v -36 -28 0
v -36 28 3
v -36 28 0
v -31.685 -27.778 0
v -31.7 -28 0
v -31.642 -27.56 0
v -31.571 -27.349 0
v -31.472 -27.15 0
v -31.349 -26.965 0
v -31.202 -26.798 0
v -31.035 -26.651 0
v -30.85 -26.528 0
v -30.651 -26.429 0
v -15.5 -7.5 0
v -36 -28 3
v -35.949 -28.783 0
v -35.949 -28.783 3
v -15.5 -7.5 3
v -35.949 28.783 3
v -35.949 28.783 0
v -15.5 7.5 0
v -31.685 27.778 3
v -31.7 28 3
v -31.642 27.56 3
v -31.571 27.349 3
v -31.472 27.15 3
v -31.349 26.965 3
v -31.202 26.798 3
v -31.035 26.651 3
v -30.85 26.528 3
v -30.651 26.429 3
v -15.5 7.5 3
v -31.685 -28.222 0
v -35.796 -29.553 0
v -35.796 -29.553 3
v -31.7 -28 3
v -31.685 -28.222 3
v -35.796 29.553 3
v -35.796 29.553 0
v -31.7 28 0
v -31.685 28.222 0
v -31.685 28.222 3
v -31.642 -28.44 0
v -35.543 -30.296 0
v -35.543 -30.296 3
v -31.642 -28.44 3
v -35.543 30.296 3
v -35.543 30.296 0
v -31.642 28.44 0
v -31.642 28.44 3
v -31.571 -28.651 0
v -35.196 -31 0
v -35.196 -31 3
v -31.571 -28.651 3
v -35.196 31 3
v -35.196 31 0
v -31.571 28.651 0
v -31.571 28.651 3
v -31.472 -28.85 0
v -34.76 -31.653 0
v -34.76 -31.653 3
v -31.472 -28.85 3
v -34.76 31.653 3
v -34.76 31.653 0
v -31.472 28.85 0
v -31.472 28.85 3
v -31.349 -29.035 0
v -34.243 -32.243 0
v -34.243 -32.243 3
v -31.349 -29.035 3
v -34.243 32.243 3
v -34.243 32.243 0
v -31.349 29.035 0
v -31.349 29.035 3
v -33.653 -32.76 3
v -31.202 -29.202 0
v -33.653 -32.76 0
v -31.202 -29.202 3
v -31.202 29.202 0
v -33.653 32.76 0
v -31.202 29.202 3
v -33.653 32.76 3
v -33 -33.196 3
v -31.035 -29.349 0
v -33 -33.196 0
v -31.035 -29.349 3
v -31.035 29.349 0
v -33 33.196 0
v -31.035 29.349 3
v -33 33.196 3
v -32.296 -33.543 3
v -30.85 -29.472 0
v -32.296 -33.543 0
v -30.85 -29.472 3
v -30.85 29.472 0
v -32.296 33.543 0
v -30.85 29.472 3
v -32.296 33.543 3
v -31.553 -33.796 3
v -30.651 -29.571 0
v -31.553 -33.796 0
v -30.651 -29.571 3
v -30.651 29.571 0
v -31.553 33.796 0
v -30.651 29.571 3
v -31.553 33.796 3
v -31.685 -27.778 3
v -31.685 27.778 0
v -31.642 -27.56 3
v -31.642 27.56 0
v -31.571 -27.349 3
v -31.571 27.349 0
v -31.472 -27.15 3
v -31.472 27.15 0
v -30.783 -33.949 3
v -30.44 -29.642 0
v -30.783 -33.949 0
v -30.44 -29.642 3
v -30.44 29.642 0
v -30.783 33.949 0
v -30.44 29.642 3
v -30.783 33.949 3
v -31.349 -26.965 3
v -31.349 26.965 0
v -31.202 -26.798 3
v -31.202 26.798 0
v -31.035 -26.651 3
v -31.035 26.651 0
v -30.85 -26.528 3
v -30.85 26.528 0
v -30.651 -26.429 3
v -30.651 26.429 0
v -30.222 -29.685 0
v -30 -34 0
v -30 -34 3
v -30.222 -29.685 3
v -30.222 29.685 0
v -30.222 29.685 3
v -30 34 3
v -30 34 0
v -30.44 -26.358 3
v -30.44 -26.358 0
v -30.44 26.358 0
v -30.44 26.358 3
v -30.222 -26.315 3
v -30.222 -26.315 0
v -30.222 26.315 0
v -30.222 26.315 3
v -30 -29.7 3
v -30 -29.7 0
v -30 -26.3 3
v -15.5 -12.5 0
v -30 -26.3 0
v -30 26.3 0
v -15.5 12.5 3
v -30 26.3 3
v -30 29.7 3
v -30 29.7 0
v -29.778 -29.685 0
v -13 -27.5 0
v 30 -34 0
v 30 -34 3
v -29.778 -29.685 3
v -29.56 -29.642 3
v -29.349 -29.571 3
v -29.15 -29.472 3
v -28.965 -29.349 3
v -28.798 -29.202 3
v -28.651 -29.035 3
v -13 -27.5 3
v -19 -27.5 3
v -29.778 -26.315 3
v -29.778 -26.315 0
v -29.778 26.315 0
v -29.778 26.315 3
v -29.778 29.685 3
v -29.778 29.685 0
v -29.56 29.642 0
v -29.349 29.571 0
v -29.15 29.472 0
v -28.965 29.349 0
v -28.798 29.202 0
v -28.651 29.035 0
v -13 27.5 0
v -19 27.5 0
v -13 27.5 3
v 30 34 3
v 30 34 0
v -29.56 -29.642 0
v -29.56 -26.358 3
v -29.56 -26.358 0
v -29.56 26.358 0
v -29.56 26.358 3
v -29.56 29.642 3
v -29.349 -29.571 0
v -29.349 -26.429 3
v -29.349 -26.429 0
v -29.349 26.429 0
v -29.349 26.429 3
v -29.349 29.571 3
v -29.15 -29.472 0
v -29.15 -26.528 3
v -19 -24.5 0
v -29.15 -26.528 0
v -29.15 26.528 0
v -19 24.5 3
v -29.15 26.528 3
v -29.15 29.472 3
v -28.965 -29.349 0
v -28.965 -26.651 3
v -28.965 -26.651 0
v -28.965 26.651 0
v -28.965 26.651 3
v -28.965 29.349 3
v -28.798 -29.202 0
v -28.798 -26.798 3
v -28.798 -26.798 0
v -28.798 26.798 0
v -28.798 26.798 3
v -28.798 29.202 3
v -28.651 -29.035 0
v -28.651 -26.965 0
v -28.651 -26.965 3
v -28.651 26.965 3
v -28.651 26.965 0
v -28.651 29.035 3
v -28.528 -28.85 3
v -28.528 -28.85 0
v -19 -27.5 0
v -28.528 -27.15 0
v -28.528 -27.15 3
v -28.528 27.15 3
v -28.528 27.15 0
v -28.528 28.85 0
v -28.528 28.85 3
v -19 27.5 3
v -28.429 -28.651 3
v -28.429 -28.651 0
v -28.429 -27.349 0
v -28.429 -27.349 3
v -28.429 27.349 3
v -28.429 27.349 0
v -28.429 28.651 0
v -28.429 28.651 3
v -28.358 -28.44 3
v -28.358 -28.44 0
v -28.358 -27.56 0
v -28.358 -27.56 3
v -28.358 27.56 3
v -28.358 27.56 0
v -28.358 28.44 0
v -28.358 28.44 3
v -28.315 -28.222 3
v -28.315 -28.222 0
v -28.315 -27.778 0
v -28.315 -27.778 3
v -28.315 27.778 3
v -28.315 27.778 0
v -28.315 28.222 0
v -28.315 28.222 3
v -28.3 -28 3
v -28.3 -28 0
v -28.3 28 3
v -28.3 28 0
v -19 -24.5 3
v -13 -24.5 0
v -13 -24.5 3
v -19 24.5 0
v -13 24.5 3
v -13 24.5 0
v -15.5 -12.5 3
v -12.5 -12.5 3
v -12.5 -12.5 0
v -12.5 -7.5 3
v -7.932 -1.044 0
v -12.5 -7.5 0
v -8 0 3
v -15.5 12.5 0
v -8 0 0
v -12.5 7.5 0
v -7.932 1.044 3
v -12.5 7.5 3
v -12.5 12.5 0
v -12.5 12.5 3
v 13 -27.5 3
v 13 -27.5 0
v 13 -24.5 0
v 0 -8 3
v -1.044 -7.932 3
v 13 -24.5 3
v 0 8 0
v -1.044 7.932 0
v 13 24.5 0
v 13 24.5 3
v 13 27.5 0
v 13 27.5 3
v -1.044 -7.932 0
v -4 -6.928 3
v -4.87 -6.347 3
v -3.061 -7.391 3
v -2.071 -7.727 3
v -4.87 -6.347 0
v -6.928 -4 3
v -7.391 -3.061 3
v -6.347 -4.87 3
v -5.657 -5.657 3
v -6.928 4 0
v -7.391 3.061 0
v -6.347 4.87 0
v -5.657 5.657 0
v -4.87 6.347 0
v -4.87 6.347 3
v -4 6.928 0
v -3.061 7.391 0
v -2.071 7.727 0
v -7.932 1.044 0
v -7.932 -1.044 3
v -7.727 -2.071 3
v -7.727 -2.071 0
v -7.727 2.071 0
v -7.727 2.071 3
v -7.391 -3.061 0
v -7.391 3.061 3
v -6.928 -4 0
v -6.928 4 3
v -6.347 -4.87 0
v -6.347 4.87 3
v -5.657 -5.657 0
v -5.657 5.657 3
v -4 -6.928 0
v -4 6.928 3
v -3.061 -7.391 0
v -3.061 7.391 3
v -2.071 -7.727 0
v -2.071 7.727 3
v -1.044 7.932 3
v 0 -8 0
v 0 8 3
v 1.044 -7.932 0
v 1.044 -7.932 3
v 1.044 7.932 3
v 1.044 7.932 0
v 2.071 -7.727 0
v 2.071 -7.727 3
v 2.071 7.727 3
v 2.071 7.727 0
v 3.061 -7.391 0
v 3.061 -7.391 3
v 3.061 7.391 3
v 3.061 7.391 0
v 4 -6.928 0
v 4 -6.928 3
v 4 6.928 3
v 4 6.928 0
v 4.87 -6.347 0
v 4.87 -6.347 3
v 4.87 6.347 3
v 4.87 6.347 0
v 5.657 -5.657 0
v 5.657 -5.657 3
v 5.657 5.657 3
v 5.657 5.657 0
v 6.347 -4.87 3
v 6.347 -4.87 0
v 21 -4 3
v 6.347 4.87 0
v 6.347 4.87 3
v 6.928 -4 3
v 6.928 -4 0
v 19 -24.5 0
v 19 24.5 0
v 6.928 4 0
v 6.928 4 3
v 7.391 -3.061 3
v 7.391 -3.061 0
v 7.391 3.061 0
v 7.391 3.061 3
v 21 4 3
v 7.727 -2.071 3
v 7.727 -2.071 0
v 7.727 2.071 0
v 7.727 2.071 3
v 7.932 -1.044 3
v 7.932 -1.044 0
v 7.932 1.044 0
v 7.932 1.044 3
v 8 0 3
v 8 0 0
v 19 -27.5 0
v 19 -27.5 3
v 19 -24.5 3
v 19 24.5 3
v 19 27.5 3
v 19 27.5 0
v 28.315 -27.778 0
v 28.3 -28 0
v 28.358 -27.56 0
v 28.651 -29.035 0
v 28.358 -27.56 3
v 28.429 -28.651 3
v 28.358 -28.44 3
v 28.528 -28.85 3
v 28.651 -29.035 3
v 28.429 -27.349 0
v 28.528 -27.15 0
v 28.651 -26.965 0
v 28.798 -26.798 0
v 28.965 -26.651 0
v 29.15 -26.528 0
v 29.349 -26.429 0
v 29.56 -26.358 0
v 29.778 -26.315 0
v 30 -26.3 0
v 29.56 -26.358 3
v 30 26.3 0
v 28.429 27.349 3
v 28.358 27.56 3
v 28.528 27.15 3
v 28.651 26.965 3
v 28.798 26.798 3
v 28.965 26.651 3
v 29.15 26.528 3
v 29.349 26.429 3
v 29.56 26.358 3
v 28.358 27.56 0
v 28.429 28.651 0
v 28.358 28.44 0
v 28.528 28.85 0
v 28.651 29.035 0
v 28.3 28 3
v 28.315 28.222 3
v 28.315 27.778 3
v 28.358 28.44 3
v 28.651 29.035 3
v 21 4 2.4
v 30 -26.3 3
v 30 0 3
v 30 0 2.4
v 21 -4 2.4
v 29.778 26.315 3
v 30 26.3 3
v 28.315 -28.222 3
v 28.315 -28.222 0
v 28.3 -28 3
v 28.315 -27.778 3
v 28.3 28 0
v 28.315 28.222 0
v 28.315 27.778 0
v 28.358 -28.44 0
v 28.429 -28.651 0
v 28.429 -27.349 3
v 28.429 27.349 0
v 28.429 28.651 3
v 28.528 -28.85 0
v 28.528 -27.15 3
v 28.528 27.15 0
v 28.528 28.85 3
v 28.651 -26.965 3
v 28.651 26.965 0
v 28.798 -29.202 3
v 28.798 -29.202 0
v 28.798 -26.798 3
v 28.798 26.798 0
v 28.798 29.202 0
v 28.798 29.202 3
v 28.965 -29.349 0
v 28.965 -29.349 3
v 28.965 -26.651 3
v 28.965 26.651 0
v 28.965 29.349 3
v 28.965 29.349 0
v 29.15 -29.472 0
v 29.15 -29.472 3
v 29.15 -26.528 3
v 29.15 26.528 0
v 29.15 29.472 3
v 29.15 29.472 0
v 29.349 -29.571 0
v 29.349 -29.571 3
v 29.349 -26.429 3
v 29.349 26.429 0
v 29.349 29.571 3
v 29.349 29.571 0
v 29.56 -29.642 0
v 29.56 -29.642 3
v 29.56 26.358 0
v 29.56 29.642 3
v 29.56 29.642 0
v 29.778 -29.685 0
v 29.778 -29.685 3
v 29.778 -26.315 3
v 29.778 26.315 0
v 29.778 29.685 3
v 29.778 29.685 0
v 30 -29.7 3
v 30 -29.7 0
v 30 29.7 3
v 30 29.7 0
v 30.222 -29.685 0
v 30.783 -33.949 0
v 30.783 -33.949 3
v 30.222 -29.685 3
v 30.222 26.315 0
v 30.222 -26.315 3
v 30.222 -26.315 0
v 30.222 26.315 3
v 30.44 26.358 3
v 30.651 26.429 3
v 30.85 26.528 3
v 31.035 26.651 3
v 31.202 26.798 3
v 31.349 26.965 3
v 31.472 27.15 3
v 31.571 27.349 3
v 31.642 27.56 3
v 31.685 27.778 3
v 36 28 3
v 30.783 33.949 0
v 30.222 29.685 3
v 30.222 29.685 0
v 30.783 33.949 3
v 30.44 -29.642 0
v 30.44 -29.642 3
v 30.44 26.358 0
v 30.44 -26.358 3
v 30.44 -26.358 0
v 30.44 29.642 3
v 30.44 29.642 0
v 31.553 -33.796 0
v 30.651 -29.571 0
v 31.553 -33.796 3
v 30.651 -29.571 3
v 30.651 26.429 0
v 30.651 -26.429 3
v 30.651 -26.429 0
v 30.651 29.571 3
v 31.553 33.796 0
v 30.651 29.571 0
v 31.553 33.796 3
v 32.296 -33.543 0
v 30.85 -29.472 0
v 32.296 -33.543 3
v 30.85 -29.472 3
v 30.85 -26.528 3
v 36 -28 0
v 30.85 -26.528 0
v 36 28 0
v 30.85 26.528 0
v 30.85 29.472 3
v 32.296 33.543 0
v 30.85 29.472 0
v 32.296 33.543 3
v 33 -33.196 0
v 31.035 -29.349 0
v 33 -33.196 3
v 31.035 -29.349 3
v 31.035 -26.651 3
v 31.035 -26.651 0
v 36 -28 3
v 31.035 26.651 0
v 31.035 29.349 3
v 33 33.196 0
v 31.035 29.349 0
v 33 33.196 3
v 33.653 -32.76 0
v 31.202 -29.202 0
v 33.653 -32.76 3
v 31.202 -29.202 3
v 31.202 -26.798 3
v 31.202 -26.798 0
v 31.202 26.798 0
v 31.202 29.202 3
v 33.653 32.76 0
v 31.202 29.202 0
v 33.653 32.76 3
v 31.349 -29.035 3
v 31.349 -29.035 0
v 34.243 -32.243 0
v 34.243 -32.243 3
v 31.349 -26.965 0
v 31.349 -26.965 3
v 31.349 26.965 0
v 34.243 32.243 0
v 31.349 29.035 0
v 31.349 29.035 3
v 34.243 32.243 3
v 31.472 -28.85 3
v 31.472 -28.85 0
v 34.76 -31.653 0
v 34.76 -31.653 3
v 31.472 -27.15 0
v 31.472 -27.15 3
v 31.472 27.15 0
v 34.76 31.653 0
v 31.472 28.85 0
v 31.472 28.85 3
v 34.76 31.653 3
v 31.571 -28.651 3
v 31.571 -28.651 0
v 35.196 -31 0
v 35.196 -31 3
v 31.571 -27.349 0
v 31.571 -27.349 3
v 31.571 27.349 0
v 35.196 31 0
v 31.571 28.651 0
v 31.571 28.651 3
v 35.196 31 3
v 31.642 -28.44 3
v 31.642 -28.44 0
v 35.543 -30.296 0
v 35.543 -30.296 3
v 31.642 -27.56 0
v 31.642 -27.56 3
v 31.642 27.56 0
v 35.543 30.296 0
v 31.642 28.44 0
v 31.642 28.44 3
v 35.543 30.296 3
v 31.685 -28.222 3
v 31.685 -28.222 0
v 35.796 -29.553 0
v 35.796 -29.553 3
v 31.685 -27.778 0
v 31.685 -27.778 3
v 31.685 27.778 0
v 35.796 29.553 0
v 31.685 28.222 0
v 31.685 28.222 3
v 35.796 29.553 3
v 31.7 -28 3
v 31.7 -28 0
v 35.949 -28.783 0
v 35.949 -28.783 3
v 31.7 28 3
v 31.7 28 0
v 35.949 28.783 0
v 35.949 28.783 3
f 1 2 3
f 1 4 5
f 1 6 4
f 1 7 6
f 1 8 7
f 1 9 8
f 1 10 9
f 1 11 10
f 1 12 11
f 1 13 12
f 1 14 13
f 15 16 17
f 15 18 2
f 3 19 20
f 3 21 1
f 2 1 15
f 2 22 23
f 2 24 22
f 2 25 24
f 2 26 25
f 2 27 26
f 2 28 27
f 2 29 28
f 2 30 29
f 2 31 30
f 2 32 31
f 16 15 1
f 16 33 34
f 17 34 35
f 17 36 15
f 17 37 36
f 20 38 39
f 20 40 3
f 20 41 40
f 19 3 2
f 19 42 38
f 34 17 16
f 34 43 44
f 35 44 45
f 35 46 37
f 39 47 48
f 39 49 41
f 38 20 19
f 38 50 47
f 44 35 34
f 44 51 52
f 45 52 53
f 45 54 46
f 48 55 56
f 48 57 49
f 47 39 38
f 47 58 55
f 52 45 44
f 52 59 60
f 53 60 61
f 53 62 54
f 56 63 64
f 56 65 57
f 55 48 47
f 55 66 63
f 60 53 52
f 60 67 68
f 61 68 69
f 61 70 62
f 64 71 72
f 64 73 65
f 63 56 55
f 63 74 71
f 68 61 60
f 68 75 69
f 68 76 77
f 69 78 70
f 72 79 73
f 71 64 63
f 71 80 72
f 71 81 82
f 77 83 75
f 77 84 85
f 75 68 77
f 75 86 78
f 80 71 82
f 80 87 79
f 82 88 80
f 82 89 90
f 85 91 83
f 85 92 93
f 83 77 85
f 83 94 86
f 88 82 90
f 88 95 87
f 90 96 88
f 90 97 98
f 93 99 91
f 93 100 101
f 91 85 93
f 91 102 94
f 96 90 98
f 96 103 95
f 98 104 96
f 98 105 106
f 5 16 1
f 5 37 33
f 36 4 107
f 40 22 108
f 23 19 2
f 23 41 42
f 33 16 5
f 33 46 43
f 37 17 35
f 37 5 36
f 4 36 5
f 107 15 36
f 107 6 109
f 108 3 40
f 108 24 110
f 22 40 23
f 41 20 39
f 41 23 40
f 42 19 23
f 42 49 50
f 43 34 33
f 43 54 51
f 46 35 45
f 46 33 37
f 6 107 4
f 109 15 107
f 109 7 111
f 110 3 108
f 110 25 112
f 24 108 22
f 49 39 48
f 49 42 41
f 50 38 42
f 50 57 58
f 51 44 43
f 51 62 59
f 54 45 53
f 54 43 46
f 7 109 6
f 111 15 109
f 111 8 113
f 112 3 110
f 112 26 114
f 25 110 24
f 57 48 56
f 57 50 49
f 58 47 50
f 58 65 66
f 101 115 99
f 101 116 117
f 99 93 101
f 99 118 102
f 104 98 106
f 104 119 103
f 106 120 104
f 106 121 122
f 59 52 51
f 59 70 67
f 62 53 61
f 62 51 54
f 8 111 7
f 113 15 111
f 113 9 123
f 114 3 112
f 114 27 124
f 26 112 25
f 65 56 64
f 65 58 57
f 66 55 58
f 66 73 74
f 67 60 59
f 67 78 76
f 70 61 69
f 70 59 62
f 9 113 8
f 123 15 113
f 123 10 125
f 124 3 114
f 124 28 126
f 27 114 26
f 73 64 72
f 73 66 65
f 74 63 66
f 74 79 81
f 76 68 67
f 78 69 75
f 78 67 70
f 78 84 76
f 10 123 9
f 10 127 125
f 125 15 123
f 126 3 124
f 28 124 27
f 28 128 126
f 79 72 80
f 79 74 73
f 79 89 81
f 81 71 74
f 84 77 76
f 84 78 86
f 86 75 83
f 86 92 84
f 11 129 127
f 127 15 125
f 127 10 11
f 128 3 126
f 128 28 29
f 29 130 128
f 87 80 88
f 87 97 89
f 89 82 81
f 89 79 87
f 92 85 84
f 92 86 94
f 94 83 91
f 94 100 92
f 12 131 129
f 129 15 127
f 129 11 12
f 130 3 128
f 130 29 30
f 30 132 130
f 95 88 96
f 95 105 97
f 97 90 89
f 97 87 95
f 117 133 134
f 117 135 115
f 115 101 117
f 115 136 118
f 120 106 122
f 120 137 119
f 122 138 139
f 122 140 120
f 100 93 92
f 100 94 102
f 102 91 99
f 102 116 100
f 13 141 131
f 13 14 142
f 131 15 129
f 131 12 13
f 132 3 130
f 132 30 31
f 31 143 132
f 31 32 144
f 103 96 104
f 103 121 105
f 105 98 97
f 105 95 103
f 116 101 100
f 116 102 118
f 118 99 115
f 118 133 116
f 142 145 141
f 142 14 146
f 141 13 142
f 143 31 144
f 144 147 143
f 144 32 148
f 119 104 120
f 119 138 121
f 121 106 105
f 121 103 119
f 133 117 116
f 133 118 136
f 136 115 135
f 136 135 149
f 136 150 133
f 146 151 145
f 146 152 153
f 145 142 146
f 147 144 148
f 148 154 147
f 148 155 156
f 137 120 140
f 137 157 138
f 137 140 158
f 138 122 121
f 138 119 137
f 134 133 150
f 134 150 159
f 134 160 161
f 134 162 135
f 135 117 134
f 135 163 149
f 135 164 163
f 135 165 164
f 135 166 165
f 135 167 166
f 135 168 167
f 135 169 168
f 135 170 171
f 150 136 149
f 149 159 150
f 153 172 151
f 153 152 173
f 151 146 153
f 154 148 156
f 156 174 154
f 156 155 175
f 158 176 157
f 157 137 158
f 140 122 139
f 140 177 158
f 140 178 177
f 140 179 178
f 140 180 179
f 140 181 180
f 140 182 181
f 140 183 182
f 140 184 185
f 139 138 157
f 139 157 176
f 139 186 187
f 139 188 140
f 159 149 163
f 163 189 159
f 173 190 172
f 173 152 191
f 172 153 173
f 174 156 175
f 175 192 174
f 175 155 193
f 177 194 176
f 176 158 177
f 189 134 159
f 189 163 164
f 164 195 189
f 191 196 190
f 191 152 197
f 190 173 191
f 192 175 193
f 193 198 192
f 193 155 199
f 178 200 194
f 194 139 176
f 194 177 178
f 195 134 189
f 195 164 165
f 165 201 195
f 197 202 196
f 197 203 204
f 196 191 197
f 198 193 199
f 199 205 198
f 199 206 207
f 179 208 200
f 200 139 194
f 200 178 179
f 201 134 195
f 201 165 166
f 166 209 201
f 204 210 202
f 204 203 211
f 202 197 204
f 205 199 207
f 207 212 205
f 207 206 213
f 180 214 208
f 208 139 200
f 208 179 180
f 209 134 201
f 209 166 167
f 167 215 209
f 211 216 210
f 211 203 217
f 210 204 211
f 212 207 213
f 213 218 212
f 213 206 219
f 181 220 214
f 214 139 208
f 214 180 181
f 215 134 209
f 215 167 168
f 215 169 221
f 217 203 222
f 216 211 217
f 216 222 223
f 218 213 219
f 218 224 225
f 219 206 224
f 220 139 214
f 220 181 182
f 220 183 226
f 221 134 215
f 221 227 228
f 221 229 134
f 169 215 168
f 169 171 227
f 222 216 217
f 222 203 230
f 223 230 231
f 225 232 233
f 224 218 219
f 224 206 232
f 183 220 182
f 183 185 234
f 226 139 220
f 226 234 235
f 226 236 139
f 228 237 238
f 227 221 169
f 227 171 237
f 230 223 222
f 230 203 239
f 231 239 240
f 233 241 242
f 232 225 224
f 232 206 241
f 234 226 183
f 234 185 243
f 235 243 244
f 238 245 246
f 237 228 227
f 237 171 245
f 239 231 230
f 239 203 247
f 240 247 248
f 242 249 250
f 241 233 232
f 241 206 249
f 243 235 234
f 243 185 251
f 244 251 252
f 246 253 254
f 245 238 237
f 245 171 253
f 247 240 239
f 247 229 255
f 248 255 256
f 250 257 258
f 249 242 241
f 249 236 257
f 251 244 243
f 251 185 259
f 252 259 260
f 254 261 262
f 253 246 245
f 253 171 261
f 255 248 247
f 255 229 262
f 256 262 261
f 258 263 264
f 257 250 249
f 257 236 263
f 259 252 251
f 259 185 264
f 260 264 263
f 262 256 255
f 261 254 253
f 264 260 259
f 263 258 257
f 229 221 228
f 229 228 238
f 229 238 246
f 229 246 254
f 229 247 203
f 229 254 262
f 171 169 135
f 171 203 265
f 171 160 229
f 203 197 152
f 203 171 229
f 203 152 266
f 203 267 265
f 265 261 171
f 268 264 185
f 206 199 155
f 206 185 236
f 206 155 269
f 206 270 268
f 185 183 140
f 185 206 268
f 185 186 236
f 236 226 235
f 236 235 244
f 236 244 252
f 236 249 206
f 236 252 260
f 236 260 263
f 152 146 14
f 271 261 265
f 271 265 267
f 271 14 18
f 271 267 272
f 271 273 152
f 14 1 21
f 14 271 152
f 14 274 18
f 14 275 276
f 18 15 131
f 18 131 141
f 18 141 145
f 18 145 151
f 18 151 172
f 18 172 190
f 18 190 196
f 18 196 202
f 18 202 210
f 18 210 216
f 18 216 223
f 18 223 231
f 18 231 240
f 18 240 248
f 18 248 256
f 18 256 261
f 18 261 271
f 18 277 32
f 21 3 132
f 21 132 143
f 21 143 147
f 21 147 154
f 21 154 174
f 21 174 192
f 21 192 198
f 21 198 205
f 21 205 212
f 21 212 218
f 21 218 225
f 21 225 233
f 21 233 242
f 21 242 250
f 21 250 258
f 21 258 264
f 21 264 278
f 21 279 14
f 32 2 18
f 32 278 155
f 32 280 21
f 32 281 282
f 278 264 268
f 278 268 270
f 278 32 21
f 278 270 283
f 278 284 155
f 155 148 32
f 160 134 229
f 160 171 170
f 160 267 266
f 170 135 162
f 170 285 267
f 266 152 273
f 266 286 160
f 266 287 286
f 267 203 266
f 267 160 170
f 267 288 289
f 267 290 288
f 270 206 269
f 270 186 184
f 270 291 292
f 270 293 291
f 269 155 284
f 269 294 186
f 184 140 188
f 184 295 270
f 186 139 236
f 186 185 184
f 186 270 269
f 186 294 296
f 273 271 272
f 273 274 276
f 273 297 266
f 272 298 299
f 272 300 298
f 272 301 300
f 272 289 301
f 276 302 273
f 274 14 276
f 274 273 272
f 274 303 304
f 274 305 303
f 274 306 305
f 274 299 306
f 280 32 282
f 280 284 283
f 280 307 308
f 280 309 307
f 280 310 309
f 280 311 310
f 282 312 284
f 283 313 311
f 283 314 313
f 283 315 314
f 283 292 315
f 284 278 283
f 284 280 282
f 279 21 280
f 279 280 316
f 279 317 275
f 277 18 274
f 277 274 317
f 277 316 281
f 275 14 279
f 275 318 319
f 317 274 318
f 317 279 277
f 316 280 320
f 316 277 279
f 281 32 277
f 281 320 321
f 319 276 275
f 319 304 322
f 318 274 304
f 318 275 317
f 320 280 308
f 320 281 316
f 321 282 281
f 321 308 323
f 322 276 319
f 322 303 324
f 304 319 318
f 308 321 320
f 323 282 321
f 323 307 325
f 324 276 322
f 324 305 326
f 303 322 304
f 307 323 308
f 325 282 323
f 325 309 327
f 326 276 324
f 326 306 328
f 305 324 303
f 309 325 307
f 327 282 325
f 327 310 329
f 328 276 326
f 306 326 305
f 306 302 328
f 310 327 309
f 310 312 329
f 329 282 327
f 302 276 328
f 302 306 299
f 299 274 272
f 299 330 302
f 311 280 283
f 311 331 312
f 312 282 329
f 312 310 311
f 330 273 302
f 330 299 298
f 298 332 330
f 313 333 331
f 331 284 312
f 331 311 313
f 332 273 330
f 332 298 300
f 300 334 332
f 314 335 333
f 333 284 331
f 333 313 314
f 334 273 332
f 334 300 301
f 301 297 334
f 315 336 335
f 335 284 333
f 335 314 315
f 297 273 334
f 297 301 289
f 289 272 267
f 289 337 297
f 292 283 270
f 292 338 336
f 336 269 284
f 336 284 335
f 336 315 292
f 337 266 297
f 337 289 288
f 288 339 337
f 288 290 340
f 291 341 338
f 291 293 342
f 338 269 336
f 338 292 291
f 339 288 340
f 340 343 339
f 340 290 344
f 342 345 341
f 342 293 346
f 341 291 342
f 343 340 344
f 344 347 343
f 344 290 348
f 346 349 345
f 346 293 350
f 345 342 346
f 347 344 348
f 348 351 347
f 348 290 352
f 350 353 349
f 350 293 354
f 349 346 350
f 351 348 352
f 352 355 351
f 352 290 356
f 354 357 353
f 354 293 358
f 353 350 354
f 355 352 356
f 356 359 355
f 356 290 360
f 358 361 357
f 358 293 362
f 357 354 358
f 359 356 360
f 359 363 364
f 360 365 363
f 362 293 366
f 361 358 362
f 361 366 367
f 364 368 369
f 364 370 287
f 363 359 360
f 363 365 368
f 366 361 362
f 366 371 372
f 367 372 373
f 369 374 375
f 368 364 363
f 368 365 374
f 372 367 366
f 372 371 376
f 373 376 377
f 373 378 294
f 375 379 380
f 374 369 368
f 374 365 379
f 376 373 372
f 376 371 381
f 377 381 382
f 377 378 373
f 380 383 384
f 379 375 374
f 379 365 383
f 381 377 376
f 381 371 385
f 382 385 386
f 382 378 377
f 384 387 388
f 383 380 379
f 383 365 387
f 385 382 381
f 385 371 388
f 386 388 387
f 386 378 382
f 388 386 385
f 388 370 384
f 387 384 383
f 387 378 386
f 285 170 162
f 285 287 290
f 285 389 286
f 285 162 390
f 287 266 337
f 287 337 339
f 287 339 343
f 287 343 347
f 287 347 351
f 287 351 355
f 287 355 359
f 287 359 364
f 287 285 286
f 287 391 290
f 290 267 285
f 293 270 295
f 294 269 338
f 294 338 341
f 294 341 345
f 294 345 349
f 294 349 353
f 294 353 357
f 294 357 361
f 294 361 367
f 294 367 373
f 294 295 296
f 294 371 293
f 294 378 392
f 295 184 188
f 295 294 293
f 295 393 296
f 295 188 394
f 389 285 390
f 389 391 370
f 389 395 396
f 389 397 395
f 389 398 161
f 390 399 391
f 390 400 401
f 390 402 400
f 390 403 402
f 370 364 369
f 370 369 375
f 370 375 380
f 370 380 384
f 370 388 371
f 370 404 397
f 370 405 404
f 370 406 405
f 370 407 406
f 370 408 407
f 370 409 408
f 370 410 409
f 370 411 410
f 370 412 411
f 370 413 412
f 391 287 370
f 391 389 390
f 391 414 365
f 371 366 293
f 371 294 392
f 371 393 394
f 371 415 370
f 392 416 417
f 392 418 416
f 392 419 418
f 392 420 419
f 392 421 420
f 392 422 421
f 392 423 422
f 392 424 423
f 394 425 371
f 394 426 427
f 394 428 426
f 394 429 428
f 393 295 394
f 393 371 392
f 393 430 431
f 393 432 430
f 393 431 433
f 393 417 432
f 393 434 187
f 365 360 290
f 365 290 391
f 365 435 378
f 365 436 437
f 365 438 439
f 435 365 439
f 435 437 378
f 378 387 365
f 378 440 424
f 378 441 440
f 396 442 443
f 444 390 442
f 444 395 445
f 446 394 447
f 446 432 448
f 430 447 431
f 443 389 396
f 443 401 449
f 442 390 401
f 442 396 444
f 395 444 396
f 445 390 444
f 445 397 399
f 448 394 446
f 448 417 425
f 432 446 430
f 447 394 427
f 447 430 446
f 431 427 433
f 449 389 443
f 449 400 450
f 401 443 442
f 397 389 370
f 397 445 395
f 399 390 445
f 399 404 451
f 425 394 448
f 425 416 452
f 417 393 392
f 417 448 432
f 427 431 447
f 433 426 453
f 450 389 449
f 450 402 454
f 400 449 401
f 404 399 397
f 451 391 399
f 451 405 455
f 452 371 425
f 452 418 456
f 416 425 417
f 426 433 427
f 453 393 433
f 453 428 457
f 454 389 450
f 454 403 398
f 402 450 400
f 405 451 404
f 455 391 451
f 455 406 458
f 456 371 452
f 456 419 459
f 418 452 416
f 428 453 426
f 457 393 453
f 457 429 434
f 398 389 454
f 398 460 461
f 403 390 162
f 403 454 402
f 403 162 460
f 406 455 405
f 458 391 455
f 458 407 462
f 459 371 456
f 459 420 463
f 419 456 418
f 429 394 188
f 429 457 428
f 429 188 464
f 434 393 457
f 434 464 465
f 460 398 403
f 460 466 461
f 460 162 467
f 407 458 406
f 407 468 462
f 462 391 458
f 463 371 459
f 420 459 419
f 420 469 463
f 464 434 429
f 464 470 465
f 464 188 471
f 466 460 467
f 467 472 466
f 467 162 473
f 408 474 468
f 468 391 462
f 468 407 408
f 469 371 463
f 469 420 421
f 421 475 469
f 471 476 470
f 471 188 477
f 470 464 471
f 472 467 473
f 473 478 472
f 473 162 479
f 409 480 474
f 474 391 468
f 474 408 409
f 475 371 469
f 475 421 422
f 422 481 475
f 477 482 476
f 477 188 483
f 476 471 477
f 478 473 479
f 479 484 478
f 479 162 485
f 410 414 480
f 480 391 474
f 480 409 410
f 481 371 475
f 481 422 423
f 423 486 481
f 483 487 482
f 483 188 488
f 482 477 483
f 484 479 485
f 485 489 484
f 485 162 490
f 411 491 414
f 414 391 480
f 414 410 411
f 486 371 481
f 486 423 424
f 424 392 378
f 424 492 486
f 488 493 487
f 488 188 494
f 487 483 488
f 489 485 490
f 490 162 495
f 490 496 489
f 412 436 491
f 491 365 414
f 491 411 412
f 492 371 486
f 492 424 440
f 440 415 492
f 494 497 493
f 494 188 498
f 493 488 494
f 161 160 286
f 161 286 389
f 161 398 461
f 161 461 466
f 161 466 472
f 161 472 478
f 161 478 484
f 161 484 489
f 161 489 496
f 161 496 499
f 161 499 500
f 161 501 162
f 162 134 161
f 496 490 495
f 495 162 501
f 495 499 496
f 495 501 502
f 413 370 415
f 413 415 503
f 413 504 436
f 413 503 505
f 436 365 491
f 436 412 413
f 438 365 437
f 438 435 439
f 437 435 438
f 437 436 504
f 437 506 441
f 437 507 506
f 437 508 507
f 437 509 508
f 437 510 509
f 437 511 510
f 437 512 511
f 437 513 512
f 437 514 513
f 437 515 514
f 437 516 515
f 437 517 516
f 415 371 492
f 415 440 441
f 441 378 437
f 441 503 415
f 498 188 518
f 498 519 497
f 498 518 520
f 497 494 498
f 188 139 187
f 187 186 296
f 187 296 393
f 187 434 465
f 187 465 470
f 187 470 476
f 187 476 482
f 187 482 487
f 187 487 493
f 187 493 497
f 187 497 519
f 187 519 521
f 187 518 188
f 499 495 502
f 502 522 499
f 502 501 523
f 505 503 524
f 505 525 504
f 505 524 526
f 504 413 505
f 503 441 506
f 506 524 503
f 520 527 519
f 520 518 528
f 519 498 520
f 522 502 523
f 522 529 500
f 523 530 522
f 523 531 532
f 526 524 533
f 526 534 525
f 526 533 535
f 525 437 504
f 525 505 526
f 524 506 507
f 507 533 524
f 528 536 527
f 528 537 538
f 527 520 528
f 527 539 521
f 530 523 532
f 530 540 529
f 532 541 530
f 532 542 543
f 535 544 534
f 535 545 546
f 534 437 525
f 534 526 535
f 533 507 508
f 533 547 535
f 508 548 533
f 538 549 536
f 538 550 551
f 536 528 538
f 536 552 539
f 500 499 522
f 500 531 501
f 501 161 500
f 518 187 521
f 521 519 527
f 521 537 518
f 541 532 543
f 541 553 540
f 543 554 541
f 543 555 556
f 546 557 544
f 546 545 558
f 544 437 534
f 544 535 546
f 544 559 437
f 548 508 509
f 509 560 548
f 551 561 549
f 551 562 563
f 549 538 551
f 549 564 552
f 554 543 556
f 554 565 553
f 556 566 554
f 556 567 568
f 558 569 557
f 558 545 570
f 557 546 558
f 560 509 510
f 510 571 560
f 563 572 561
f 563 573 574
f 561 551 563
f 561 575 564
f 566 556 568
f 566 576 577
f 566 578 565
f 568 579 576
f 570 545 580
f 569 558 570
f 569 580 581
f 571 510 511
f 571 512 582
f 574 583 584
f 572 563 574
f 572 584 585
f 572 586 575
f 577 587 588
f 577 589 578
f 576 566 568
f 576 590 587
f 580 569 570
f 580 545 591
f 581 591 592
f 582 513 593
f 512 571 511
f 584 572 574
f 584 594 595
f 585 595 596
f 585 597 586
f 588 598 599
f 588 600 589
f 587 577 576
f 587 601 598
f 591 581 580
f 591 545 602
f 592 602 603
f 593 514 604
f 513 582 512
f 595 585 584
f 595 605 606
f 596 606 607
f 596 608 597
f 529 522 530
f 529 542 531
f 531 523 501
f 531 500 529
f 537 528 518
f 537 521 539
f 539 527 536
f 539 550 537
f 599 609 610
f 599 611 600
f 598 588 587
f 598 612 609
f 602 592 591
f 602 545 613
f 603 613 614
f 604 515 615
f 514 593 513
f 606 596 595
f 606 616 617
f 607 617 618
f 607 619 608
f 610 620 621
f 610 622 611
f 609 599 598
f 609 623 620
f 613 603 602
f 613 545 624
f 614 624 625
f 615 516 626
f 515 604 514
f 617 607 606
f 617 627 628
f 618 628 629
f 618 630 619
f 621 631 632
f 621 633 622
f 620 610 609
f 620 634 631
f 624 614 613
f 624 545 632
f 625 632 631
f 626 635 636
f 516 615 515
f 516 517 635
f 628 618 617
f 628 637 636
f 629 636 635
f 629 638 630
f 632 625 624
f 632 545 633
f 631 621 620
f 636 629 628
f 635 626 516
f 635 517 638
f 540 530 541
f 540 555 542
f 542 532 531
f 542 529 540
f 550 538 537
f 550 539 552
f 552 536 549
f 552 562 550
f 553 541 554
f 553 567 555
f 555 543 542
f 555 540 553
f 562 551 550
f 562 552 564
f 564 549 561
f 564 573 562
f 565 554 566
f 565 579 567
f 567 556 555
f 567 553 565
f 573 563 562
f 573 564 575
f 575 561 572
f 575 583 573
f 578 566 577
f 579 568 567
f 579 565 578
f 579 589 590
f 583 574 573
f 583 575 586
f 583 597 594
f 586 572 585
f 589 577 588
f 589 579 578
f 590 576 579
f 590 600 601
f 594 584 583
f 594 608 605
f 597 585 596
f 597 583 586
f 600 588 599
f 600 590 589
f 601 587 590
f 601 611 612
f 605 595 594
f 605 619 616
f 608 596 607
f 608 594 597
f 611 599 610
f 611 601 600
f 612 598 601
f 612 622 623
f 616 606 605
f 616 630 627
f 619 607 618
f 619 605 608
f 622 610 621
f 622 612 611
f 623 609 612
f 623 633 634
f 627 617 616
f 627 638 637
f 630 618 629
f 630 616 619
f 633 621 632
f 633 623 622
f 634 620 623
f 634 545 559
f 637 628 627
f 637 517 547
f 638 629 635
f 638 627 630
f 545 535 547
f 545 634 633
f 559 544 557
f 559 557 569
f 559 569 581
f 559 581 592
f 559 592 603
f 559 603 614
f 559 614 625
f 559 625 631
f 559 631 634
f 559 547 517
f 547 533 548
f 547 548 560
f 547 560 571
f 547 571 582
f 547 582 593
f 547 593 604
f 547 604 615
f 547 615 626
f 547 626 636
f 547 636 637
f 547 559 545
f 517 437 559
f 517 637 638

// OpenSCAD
// file: params.scad
// 18 舵机六足 · 3D 打印机身 · 共享参数和公共模块（本文件自己不导出 STL）
//
// 腿的几何尺寸和固件 firmware/hexapod_g7pro/params.h 的默认值一一对应：
//   coxa_len ↔ coxa    femur_len ↔ femur    tibia_len ↔ tibia
//   front_x / front_y / front_angle / mid_y / rear_x / rear_y / rear_angle 同名
// 所以打印这套机身，固件的腿长和安装位置参数都不用改。
//
// 坐标约定（和固件一致）：
//   机身坐标：X+ = 前，Y+ = 左，Z+ = 上，原点 = 机身中心，高度原点 = 大腿舵机轴。
//   腿坐标：原点 = 基节转轴，X+ = 腿朝外，Y+ = 逆时针一侧，Z+ = 上。
// 6 条腿的零件完全一样（不分左右），左右舵机转向的差别由固件里的 dir 参数处理。

/* [舵机 MG90S（量你自己的）] */
servo_w = 12.2;           // 机身宽度 (mm)
servo_l = 22.8;           // 机身长度，沿安装耳方向 (mm)
ear_span = 32.5;          // 两个安装耳外端之间的总长 (mm)
ear_hole_spacing = 28.0;  // 两个安装孔的中心距 (mm)
ear_z = 15.9;             // 机壳底面 → 安装耳下表面 (mm)
ear_t = 2.5;              // 安装耳厚度 (mm)
case_h = 22.7;            // 机壳底面 → 机壳顶面（不含输出轴）(mm)
shaft_off = 5.4;          // 输出轴中心 → 机身中心，沿长度方向 (mm)
shaft_gap = 4.0;          // 机壳顶面 → 舵机臂贴合面 (mm)

/* [舵机臂（单边臂，量你自己的）] */
horn_hub_d = 7.6;         // 舵机臂中心圆盘直径 (mm)
horn_len = 18.5;          // 中心 → 臂尖 (mm)
horn_w_hub = 6.2;         // 臂根宽度 (mm)
horn_w_tip = 4.2;         // 臂尖宽度 (mm)
horn_t = 1.6;             // 臂厚 = 零件上凹槽深度 (mm)
horn_holes = [10.5, 14.5];// 固定舵机臂的两个孔到中心的距离 (mm)
horn_screw_access = 5.5;  // 中心过孔：舵机臂中心螺丝和螺丝刀从这里进 (mm)

/* [腿的几何（和固件 params.h 一致）] */
coxa_len = 28;            // 基节转轴 → 大腿舵机轴 (mm)
femur_len = 50;           // 大腿舵机轴 → 小腿舵机轴 (mm)
tibia_len = 75;           // 小腿舵机轴 → 脚尖 (mm)
front_x = 60; front_y = 40; front_angle = 45;
mid_y = 55;
rear_x = 60; rear_y = 40; rear_angle = 135;

/* [打印余量和螺丝] */
clearance = 0.4;          // 方孔比舵机大多少 (mm)；太紧改 0.5
screw_pilot = 1.6;        // M2 自攻螺丝底孔（舵机安装耳）(mm)
horn_screw_hole = 2.0;    // 舵机臂固定螺丝过孔 (mm)
m3_hole = 3.4;            // M3 通孔 (mm)

/* [机身] */
plate_t = 3.0;            // 底板 / 甲板厚度 (mm)
standoff_h = 25;          // 底板和甲板之间的 M3 铜柱长度 (mm)
bar_t = 4.0;              // 大腿板厚度 (mm)
mount_t = 3.0;            // 舵机安装板厚度 (mm)
coxa_horn_z = 11;         // 基节舵机臂贴合面高度（相对大腿轴）(mm)

/* [Hidden] */
// 6 条腿：[髋轴 X, 髋轴 Y, 朝向°]，顺序 LF LM LR RF RM RR（和固件 leg 0..5 一致）
legs = [
  [ front_x,  front_y,  front_angle],
  [ 0,        mid_y,    90],
  [-rear_x,   rear_y,   rear_angle],
  [ front_x, -front_y, -front_angle],
  [ 0,       -mid_y,   -90],
  [-rear_x,  -rear_y,  -rear_angle]
];
leg_names = ["LF", "LM", "LR", "RF", "RM", "RR"];

pocket_w = servo_w + clearance;
pocket_l = servo_l + clearance;
// 舵机本地坐标：输出轴 = +Z，舵机臂贴合面在 z = 0，机身沿 +X 伸出（机身中心 x = shaft_off）
ear_low = -shaft_gap - case_h + ear_z;       // 安装耳“朝机壳底”的那一面，安装板贴在这里
plate_top_z = coxa_horn_z + ear_low;         // 底板上表面高度（相对大腿轴）
deck_z = plate_top_z + standoff_h;           // 甲板下表面高度

module at_leg(l) translate([l[0], l[1]]) rotate(l[2]) children();

// 舵机实体（装配预览 / 干涉检查用）
module servo_body() {
  color("DimGray") {
    translate([shaft_off - servo_l / 2, -servo_w / 2, -shaft_gap - case_h]) cube([servo_l, servo_w, case_h]);
    // 耳朵和输出轴都留 0.05 mm，避免“刚好贴着”被干涉检查当成碰撞
    translate([shaft_off - ear_span / 2, -servo_w / 2, ear_low + 0.05]) cube([ear_span, servo_w, ear_t - 0.05]);
    translate([0, 0, -shaft_gap]) cylinder(d = 5, h = shaft_gap - 0.05);
  }
}

// 安装板上的舵机方孔 + 两个安装耳螺丝底孔（在舵机本地坐标里，穿过安装板）
module servo_mount_cut() {
  translate([shaft_off - pocket_l / 2, -pocket_w / 2, ear_low - mount_t - 1]) cube([pocket_l, pocket_w, mount_t + 2]);
  for (s = [-1, 1]) translate([shaft_off + s * ear_hole_spacing / 2, 0, ear_low - mount_t - 1])
    cylinder(d = screw_pilot, h = mount_t + 2, $fn = 16);
}

// 单边舵机臂的 2D 外形：中心在原点，臂沿 +X
module horn_2d(extra = 0) {
  hull() {
    circle(d = horn_hub_d + extra);
    translate([0, -(horn_w_hub + extra) / 2]) square([0.01, horn_w_hub + extra]);
    translate([horn_len - horn_w_tip / 2, 0]) circle(d = horn_w_tip + extra);
  }
}

// 舵机臂凹槽：从 z = 0 往 +Z 挖 horn_t 深，加中心过孔和两个螺丝过孔（贯穿 depth）
module horn_cut(depth) {
  translate([0, 0, -0.01]) linear_extrude(horn_t + 0.01) horn_2d(clearance);
  translate([0, 0, -1]) cylinder(d = horn_screw_access, h = depth + 2, $fn = 24);
  for (r = horn_holes) translate([r, 0, -1]) cylinder(d = horn_screw_hole, h = depth + 2, $fn = 16);
}
// main file
// 激光雷达平台：打 1 个。平放。装在甲板上方 4 根 M3×50 铜柱上。
include <parts.scad>
translate([0, 0, -lidar_z]) lidar_mount();
